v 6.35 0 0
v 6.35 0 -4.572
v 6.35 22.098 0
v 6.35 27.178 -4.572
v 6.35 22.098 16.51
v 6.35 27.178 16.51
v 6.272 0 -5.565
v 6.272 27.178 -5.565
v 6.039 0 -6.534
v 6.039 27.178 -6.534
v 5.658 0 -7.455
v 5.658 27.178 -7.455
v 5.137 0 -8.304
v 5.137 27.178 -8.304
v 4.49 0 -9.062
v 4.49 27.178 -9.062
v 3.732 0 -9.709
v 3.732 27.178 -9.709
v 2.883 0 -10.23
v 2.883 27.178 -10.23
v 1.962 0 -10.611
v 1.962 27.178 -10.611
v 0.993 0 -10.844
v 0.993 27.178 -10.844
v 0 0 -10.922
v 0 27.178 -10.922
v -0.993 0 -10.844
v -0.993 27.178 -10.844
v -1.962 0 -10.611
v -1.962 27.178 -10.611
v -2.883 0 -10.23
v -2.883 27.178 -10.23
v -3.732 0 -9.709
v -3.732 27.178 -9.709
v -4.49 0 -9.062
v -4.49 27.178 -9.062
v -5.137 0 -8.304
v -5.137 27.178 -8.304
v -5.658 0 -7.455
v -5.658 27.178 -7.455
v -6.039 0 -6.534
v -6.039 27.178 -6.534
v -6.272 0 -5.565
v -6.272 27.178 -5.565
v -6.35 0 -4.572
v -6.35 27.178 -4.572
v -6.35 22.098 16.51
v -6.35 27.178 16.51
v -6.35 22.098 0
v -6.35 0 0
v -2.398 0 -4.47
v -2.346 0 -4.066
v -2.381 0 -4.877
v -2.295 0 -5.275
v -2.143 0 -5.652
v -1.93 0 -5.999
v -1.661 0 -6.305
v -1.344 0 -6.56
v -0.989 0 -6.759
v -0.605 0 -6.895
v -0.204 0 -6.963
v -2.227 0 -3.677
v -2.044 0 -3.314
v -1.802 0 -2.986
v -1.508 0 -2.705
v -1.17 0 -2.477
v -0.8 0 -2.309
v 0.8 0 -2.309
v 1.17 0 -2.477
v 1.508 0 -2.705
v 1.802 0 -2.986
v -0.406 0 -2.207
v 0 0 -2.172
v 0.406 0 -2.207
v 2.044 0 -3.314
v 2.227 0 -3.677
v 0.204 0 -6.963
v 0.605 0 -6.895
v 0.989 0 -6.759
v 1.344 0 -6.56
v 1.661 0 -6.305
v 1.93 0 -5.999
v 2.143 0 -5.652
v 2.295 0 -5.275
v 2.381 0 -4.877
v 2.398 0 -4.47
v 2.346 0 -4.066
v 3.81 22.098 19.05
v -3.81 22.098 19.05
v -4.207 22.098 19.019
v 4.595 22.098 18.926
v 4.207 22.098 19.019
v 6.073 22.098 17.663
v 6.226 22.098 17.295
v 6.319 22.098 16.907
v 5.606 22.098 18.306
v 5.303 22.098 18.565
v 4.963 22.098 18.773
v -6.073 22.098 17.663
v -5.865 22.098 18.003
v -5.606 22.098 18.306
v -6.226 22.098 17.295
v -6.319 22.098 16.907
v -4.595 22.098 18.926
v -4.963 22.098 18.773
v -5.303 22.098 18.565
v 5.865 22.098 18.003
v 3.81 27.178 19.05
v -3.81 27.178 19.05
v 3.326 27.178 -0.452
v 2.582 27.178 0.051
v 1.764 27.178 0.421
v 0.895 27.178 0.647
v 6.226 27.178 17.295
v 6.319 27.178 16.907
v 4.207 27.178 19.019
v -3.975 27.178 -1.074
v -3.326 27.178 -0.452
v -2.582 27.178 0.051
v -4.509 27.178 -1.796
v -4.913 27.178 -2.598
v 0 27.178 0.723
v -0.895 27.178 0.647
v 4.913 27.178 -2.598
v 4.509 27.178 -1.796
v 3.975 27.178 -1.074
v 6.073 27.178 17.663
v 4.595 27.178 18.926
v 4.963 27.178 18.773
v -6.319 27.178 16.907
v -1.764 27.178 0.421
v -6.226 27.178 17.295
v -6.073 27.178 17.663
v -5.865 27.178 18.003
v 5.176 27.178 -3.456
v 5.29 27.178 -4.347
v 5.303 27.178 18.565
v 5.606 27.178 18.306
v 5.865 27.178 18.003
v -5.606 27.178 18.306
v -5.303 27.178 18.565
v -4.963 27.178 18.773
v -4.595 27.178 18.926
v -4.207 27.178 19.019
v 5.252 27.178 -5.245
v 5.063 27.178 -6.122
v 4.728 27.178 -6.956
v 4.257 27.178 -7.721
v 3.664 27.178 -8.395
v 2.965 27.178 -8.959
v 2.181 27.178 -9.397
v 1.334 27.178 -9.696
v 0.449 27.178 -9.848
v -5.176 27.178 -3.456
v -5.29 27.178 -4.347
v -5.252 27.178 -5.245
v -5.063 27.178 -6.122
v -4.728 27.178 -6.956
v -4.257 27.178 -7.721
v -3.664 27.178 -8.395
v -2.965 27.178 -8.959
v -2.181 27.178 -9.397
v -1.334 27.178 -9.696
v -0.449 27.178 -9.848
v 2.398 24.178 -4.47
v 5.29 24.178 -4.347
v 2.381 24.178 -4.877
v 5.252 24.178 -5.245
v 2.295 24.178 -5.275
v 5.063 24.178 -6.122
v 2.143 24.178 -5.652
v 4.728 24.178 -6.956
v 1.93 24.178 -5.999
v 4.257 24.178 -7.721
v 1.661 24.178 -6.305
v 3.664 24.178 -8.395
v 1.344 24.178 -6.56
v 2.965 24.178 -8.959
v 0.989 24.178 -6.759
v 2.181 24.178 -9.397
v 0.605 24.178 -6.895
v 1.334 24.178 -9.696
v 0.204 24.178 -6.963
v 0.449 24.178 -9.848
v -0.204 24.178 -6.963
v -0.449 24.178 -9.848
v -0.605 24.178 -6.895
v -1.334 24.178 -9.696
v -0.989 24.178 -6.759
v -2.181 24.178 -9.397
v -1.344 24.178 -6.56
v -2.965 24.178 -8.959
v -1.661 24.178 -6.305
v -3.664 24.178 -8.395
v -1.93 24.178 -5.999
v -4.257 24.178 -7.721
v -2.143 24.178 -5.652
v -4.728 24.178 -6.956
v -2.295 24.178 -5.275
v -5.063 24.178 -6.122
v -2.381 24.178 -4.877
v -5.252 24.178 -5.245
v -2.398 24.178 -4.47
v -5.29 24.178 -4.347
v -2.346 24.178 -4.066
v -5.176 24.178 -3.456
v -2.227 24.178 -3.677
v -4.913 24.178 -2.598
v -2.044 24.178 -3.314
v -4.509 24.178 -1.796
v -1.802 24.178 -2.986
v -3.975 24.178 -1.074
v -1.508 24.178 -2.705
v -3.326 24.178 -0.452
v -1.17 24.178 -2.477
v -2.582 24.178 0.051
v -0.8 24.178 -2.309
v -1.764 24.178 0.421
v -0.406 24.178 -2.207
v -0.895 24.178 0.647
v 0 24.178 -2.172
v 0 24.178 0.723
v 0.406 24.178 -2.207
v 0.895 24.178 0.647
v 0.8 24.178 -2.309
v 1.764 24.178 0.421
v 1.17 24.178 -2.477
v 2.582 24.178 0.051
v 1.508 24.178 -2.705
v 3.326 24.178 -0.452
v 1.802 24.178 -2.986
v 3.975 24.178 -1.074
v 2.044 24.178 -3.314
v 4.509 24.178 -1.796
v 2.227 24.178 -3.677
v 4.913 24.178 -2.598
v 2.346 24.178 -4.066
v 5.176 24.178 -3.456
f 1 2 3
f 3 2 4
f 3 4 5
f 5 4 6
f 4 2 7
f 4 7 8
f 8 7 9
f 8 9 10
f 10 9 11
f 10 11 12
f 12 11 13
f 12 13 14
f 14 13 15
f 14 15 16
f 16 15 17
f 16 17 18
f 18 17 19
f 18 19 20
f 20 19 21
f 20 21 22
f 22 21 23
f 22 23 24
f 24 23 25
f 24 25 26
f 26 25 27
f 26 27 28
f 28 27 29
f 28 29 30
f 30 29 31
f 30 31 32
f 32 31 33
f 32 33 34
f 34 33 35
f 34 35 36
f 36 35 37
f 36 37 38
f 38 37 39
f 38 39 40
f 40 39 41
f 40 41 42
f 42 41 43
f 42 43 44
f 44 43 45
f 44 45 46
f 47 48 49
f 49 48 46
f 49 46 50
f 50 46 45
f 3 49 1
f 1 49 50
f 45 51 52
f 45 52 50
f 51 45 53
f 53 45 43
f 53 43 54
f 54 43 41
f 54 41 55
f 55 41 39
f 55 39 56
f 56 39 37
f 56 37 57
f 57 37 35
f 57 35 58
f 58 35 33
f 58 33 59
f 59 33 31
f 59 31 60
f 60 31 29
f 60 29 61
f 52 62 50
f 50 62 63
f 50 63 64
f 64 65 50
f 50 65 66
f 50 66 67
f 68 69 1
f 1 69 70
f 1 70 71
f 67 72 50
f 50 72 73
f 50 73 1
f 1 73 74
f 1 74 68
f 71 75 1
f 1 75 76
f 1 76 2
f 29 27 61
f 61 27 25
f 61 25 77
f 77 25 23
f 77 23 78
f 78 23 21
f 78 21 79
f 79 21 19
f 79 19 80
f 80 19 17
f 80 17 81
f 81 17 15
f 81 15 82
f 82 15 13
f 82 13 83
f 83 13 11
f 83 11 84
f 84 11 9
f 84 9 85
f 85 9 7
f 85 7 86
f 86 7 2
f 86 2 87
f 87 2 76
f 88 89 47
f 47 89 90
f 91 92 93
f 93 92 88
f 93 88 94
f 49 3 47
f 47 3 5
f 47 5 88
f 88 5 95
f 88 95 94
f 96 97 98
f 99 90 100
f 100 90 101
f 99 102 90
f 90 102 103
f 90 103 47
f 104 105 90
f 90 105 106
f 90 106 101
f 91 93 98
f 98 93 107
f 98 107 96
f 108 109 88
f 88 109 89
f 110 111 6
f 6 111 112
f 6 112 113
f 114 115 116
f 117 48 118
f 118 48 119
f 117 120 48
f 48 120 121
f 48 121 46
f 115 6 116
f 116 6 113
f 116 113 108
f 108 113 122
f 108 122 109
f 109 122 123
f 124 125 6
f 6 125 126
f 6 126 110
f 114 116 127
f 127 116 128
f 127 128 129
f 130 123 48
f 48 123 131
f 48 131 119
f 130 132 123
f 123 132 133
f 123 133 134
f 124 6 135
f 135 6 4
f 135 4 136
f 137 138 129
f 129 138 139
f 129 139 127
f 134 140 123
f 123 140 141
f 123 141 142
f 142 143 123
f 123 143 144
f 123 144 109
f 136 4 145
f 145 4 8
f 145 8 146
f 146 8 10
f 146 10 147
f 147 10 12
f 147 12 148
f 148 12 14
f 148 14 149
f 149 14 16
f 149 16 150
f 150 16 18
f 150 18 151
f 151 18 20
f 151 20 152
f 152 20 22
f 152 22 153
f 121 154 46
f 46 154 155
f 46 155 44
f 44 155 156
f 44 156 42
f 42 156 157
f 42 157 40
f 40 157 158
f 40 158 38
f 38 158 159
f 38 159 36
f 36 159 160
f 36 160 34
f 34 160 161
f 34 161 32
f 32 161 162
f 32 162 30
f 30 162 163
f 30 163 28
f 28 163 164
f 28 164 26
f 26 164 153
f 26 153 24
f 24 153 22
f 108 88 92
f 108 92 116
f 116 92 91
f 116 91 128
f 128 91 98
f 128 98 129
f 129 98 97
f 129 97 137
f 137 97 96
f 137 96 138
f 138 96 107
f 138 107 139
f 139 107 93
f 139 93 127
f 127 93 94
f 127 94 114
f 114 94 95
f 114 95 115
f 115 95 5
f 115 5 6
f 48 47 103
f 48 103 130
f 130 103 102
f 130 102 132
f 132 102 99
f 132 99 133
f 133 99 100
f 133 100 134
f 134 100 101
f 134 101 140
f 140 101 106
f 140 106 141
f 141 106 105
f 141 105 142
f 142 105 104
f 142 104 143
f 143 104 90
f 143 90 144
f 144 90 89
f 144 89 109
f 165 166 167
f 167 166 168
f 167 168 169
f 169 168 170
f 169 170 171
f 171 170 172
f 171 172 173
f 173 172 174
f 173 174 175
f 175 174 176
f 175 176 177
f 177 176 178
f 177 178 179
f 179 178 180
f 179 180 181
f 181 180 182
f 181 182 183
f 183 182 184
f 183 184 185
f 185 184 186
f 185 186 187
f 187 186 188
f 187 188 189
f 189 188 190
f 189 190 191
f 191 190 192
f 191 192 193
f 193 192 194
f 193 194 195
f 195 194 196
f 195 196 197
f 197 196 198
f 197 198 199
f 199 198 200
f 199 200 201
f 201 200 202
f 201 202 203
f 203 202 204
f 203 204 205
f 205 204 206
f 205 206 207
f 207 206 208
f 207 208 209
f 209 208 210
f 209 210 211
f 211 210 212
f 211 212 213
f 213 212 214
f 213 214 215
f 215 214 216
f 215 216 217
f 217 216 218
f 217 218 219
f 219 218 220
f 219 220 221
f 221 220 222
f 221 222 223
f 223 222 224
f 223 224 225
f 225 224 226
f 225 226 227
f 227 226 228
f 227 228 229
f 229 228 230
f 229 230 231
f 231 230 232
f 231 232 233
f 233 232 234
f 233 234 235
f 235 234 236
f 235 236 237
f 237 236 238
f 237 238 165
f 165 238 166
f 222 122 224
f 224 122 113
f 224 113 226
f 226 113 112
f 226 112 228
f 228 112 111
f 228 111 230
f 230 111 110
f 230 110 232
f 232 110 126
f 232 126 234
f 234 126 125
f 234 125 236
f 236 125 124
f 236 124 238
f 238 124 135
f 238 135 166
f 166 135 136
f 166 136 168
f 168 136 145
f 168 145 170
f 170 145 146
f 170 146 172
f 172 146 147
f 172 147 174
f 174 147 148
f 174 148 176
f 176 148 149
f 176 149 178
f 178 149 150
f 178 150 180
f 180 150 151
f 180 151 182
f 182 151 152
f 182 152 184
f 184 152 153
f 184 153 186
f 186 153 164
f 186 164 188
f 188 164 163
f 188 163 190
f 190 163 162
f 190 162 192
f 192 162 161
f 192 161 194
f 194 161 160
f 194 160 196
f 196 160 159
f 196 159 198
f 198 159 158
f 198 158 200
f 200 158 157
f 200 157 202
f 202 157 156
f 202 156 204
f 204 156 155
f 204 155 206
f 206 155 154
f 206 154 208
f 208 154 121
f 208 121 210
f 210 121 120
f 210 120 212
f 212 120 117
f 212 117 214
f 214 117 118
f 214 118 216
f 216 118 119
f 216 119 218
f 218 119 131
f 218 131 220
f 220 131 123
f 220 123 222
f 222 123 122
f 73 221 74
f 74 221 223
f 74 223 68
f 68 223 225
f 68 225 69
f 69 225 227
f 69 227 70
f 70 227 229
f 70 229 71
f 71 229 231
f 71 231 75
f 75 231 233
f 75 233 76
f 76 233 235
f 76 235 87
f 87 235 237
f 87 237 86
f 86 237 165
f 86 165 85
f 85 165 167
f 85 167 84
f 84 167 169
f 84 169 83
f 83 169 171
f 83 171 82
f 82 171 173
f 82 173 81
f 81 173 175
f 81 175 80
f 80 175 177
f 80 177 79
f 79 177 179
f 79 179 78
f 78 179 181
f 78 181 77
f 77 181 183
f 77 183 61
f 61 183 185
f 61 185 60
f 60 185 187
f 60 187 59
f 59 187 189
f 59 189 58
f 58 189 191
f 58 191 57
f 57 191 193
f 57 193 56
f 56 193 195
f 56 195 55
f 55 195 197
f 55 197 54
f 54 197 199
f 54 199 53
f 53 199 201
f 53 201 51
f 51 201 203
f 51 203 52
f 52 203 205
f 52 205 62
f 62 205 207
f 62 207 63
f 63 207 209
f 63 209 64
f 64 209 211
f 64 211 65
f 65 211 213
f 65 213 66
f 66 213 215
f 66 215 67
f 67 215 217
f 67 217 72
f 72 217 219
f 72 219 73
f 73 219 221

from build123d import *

# Parameters (mm, degrees)
BOSS_EXTRUDE1_DEPTH                              = 22.098
BOSS_EXTRUDE2_DEPTH                              = 5.08
FILLET1_R                                        = 2.54
CBORE_FOR_M4_HEX_HEAD_MACHINE_SCREW1_D           = 4.5
CBORE_FOR_M4_HEX_HEAD_MACHINE_SCREW1_CBORE_D     = 10.59
CBORE_FOR_M4_HEX_HEAD_MACHINE_SCREW1_CBORE_DEPTH = 3
M4_CLEARANCE_HOLE1_D                             = 4.8


with BuildPart() as part:
    # Sketch1 → Boss-Extrude1 (new body)
    with BuildSketch(Plane(origin=(0, 0, 0), x_dir=(1, 0, 0), z_dir=(0, 1, 0))):
        with BuildLine():
            Line((-6.35, 4.572), (-6.35, 0))
            Line((-6.35, 0), (6.35, 0))
            Line((6.35, 0), (6.35, 4.572))
            ThreePointArc((6.35, 4.572), (0, 10.922), (-6.35, 4.572))
        make_face()
    extrude(amount=BOSS_EXTRUDE1_DEPTH)

    # Sketch2 → Boss-Extrude2 (add)
    with BuildSketch(Plane(origin=(0, 22.098, 0), x_dir=(1, 0, 0), z_dir=(0, 1, 0))):
        with BuildLine():
            Line((-6.35, 0), (-6.35, -19.05))
            Line((-6.35, -19.05), (6.35, -19.05))
            Line((6.35, -19.05), (6.35, 0))
            Line((6.35, 0), (6.35, 4.572))
            ThreePointArc((6.35, 4.572), (0, 10.922), (-6.35, 4.572))
            Line((-6.35, 4.572), (-6.35, 0))
        make_face()
    extrude(amount=BOSS_EXTRUDE2_DEPTH)

    # Fillet1
    fillet1_edges = [part.edges().sort_by_distance(p)[0] for p in [
        (6.35, 24.638, 19.05),
        (-6.35, 24.638, 19.05),
    ]]
    fillet(fillet1_edges, radius=FILLET1_R)

    # CBORE for M4 Hex Head Machine Screw1 (through all)
    with Locations(Plane(origin=(0, 27.178, 0), x_dir=(1, 0, 0), z_dir=(0, 1, 0))):
        with Locations((0, 4.572)):
            CounterBoreHole(CBORE_FOR_M4_HEX_HEAD_MACHINE_SCREW1_D / 2, CBORE_FOR_M4_HEX_HEAD_MACHINE_SCREW1_CBORE_D / 2, CBORE_FOR_M4_HEX_HEAD_MACHINE_SCREW1_CBORE_DEPTH)

    # M4 Clearance Hole1 (through all)
    with Locations(Plane(origin=(0, 24.178, 0), x_dir=(1, 0, 0), z_dir=(0, 1, 0))):
        with Locations((0, 4.572)):
            Hole(M4_CLEARANCE_HOLE1_D / 2)


solid = part.part
